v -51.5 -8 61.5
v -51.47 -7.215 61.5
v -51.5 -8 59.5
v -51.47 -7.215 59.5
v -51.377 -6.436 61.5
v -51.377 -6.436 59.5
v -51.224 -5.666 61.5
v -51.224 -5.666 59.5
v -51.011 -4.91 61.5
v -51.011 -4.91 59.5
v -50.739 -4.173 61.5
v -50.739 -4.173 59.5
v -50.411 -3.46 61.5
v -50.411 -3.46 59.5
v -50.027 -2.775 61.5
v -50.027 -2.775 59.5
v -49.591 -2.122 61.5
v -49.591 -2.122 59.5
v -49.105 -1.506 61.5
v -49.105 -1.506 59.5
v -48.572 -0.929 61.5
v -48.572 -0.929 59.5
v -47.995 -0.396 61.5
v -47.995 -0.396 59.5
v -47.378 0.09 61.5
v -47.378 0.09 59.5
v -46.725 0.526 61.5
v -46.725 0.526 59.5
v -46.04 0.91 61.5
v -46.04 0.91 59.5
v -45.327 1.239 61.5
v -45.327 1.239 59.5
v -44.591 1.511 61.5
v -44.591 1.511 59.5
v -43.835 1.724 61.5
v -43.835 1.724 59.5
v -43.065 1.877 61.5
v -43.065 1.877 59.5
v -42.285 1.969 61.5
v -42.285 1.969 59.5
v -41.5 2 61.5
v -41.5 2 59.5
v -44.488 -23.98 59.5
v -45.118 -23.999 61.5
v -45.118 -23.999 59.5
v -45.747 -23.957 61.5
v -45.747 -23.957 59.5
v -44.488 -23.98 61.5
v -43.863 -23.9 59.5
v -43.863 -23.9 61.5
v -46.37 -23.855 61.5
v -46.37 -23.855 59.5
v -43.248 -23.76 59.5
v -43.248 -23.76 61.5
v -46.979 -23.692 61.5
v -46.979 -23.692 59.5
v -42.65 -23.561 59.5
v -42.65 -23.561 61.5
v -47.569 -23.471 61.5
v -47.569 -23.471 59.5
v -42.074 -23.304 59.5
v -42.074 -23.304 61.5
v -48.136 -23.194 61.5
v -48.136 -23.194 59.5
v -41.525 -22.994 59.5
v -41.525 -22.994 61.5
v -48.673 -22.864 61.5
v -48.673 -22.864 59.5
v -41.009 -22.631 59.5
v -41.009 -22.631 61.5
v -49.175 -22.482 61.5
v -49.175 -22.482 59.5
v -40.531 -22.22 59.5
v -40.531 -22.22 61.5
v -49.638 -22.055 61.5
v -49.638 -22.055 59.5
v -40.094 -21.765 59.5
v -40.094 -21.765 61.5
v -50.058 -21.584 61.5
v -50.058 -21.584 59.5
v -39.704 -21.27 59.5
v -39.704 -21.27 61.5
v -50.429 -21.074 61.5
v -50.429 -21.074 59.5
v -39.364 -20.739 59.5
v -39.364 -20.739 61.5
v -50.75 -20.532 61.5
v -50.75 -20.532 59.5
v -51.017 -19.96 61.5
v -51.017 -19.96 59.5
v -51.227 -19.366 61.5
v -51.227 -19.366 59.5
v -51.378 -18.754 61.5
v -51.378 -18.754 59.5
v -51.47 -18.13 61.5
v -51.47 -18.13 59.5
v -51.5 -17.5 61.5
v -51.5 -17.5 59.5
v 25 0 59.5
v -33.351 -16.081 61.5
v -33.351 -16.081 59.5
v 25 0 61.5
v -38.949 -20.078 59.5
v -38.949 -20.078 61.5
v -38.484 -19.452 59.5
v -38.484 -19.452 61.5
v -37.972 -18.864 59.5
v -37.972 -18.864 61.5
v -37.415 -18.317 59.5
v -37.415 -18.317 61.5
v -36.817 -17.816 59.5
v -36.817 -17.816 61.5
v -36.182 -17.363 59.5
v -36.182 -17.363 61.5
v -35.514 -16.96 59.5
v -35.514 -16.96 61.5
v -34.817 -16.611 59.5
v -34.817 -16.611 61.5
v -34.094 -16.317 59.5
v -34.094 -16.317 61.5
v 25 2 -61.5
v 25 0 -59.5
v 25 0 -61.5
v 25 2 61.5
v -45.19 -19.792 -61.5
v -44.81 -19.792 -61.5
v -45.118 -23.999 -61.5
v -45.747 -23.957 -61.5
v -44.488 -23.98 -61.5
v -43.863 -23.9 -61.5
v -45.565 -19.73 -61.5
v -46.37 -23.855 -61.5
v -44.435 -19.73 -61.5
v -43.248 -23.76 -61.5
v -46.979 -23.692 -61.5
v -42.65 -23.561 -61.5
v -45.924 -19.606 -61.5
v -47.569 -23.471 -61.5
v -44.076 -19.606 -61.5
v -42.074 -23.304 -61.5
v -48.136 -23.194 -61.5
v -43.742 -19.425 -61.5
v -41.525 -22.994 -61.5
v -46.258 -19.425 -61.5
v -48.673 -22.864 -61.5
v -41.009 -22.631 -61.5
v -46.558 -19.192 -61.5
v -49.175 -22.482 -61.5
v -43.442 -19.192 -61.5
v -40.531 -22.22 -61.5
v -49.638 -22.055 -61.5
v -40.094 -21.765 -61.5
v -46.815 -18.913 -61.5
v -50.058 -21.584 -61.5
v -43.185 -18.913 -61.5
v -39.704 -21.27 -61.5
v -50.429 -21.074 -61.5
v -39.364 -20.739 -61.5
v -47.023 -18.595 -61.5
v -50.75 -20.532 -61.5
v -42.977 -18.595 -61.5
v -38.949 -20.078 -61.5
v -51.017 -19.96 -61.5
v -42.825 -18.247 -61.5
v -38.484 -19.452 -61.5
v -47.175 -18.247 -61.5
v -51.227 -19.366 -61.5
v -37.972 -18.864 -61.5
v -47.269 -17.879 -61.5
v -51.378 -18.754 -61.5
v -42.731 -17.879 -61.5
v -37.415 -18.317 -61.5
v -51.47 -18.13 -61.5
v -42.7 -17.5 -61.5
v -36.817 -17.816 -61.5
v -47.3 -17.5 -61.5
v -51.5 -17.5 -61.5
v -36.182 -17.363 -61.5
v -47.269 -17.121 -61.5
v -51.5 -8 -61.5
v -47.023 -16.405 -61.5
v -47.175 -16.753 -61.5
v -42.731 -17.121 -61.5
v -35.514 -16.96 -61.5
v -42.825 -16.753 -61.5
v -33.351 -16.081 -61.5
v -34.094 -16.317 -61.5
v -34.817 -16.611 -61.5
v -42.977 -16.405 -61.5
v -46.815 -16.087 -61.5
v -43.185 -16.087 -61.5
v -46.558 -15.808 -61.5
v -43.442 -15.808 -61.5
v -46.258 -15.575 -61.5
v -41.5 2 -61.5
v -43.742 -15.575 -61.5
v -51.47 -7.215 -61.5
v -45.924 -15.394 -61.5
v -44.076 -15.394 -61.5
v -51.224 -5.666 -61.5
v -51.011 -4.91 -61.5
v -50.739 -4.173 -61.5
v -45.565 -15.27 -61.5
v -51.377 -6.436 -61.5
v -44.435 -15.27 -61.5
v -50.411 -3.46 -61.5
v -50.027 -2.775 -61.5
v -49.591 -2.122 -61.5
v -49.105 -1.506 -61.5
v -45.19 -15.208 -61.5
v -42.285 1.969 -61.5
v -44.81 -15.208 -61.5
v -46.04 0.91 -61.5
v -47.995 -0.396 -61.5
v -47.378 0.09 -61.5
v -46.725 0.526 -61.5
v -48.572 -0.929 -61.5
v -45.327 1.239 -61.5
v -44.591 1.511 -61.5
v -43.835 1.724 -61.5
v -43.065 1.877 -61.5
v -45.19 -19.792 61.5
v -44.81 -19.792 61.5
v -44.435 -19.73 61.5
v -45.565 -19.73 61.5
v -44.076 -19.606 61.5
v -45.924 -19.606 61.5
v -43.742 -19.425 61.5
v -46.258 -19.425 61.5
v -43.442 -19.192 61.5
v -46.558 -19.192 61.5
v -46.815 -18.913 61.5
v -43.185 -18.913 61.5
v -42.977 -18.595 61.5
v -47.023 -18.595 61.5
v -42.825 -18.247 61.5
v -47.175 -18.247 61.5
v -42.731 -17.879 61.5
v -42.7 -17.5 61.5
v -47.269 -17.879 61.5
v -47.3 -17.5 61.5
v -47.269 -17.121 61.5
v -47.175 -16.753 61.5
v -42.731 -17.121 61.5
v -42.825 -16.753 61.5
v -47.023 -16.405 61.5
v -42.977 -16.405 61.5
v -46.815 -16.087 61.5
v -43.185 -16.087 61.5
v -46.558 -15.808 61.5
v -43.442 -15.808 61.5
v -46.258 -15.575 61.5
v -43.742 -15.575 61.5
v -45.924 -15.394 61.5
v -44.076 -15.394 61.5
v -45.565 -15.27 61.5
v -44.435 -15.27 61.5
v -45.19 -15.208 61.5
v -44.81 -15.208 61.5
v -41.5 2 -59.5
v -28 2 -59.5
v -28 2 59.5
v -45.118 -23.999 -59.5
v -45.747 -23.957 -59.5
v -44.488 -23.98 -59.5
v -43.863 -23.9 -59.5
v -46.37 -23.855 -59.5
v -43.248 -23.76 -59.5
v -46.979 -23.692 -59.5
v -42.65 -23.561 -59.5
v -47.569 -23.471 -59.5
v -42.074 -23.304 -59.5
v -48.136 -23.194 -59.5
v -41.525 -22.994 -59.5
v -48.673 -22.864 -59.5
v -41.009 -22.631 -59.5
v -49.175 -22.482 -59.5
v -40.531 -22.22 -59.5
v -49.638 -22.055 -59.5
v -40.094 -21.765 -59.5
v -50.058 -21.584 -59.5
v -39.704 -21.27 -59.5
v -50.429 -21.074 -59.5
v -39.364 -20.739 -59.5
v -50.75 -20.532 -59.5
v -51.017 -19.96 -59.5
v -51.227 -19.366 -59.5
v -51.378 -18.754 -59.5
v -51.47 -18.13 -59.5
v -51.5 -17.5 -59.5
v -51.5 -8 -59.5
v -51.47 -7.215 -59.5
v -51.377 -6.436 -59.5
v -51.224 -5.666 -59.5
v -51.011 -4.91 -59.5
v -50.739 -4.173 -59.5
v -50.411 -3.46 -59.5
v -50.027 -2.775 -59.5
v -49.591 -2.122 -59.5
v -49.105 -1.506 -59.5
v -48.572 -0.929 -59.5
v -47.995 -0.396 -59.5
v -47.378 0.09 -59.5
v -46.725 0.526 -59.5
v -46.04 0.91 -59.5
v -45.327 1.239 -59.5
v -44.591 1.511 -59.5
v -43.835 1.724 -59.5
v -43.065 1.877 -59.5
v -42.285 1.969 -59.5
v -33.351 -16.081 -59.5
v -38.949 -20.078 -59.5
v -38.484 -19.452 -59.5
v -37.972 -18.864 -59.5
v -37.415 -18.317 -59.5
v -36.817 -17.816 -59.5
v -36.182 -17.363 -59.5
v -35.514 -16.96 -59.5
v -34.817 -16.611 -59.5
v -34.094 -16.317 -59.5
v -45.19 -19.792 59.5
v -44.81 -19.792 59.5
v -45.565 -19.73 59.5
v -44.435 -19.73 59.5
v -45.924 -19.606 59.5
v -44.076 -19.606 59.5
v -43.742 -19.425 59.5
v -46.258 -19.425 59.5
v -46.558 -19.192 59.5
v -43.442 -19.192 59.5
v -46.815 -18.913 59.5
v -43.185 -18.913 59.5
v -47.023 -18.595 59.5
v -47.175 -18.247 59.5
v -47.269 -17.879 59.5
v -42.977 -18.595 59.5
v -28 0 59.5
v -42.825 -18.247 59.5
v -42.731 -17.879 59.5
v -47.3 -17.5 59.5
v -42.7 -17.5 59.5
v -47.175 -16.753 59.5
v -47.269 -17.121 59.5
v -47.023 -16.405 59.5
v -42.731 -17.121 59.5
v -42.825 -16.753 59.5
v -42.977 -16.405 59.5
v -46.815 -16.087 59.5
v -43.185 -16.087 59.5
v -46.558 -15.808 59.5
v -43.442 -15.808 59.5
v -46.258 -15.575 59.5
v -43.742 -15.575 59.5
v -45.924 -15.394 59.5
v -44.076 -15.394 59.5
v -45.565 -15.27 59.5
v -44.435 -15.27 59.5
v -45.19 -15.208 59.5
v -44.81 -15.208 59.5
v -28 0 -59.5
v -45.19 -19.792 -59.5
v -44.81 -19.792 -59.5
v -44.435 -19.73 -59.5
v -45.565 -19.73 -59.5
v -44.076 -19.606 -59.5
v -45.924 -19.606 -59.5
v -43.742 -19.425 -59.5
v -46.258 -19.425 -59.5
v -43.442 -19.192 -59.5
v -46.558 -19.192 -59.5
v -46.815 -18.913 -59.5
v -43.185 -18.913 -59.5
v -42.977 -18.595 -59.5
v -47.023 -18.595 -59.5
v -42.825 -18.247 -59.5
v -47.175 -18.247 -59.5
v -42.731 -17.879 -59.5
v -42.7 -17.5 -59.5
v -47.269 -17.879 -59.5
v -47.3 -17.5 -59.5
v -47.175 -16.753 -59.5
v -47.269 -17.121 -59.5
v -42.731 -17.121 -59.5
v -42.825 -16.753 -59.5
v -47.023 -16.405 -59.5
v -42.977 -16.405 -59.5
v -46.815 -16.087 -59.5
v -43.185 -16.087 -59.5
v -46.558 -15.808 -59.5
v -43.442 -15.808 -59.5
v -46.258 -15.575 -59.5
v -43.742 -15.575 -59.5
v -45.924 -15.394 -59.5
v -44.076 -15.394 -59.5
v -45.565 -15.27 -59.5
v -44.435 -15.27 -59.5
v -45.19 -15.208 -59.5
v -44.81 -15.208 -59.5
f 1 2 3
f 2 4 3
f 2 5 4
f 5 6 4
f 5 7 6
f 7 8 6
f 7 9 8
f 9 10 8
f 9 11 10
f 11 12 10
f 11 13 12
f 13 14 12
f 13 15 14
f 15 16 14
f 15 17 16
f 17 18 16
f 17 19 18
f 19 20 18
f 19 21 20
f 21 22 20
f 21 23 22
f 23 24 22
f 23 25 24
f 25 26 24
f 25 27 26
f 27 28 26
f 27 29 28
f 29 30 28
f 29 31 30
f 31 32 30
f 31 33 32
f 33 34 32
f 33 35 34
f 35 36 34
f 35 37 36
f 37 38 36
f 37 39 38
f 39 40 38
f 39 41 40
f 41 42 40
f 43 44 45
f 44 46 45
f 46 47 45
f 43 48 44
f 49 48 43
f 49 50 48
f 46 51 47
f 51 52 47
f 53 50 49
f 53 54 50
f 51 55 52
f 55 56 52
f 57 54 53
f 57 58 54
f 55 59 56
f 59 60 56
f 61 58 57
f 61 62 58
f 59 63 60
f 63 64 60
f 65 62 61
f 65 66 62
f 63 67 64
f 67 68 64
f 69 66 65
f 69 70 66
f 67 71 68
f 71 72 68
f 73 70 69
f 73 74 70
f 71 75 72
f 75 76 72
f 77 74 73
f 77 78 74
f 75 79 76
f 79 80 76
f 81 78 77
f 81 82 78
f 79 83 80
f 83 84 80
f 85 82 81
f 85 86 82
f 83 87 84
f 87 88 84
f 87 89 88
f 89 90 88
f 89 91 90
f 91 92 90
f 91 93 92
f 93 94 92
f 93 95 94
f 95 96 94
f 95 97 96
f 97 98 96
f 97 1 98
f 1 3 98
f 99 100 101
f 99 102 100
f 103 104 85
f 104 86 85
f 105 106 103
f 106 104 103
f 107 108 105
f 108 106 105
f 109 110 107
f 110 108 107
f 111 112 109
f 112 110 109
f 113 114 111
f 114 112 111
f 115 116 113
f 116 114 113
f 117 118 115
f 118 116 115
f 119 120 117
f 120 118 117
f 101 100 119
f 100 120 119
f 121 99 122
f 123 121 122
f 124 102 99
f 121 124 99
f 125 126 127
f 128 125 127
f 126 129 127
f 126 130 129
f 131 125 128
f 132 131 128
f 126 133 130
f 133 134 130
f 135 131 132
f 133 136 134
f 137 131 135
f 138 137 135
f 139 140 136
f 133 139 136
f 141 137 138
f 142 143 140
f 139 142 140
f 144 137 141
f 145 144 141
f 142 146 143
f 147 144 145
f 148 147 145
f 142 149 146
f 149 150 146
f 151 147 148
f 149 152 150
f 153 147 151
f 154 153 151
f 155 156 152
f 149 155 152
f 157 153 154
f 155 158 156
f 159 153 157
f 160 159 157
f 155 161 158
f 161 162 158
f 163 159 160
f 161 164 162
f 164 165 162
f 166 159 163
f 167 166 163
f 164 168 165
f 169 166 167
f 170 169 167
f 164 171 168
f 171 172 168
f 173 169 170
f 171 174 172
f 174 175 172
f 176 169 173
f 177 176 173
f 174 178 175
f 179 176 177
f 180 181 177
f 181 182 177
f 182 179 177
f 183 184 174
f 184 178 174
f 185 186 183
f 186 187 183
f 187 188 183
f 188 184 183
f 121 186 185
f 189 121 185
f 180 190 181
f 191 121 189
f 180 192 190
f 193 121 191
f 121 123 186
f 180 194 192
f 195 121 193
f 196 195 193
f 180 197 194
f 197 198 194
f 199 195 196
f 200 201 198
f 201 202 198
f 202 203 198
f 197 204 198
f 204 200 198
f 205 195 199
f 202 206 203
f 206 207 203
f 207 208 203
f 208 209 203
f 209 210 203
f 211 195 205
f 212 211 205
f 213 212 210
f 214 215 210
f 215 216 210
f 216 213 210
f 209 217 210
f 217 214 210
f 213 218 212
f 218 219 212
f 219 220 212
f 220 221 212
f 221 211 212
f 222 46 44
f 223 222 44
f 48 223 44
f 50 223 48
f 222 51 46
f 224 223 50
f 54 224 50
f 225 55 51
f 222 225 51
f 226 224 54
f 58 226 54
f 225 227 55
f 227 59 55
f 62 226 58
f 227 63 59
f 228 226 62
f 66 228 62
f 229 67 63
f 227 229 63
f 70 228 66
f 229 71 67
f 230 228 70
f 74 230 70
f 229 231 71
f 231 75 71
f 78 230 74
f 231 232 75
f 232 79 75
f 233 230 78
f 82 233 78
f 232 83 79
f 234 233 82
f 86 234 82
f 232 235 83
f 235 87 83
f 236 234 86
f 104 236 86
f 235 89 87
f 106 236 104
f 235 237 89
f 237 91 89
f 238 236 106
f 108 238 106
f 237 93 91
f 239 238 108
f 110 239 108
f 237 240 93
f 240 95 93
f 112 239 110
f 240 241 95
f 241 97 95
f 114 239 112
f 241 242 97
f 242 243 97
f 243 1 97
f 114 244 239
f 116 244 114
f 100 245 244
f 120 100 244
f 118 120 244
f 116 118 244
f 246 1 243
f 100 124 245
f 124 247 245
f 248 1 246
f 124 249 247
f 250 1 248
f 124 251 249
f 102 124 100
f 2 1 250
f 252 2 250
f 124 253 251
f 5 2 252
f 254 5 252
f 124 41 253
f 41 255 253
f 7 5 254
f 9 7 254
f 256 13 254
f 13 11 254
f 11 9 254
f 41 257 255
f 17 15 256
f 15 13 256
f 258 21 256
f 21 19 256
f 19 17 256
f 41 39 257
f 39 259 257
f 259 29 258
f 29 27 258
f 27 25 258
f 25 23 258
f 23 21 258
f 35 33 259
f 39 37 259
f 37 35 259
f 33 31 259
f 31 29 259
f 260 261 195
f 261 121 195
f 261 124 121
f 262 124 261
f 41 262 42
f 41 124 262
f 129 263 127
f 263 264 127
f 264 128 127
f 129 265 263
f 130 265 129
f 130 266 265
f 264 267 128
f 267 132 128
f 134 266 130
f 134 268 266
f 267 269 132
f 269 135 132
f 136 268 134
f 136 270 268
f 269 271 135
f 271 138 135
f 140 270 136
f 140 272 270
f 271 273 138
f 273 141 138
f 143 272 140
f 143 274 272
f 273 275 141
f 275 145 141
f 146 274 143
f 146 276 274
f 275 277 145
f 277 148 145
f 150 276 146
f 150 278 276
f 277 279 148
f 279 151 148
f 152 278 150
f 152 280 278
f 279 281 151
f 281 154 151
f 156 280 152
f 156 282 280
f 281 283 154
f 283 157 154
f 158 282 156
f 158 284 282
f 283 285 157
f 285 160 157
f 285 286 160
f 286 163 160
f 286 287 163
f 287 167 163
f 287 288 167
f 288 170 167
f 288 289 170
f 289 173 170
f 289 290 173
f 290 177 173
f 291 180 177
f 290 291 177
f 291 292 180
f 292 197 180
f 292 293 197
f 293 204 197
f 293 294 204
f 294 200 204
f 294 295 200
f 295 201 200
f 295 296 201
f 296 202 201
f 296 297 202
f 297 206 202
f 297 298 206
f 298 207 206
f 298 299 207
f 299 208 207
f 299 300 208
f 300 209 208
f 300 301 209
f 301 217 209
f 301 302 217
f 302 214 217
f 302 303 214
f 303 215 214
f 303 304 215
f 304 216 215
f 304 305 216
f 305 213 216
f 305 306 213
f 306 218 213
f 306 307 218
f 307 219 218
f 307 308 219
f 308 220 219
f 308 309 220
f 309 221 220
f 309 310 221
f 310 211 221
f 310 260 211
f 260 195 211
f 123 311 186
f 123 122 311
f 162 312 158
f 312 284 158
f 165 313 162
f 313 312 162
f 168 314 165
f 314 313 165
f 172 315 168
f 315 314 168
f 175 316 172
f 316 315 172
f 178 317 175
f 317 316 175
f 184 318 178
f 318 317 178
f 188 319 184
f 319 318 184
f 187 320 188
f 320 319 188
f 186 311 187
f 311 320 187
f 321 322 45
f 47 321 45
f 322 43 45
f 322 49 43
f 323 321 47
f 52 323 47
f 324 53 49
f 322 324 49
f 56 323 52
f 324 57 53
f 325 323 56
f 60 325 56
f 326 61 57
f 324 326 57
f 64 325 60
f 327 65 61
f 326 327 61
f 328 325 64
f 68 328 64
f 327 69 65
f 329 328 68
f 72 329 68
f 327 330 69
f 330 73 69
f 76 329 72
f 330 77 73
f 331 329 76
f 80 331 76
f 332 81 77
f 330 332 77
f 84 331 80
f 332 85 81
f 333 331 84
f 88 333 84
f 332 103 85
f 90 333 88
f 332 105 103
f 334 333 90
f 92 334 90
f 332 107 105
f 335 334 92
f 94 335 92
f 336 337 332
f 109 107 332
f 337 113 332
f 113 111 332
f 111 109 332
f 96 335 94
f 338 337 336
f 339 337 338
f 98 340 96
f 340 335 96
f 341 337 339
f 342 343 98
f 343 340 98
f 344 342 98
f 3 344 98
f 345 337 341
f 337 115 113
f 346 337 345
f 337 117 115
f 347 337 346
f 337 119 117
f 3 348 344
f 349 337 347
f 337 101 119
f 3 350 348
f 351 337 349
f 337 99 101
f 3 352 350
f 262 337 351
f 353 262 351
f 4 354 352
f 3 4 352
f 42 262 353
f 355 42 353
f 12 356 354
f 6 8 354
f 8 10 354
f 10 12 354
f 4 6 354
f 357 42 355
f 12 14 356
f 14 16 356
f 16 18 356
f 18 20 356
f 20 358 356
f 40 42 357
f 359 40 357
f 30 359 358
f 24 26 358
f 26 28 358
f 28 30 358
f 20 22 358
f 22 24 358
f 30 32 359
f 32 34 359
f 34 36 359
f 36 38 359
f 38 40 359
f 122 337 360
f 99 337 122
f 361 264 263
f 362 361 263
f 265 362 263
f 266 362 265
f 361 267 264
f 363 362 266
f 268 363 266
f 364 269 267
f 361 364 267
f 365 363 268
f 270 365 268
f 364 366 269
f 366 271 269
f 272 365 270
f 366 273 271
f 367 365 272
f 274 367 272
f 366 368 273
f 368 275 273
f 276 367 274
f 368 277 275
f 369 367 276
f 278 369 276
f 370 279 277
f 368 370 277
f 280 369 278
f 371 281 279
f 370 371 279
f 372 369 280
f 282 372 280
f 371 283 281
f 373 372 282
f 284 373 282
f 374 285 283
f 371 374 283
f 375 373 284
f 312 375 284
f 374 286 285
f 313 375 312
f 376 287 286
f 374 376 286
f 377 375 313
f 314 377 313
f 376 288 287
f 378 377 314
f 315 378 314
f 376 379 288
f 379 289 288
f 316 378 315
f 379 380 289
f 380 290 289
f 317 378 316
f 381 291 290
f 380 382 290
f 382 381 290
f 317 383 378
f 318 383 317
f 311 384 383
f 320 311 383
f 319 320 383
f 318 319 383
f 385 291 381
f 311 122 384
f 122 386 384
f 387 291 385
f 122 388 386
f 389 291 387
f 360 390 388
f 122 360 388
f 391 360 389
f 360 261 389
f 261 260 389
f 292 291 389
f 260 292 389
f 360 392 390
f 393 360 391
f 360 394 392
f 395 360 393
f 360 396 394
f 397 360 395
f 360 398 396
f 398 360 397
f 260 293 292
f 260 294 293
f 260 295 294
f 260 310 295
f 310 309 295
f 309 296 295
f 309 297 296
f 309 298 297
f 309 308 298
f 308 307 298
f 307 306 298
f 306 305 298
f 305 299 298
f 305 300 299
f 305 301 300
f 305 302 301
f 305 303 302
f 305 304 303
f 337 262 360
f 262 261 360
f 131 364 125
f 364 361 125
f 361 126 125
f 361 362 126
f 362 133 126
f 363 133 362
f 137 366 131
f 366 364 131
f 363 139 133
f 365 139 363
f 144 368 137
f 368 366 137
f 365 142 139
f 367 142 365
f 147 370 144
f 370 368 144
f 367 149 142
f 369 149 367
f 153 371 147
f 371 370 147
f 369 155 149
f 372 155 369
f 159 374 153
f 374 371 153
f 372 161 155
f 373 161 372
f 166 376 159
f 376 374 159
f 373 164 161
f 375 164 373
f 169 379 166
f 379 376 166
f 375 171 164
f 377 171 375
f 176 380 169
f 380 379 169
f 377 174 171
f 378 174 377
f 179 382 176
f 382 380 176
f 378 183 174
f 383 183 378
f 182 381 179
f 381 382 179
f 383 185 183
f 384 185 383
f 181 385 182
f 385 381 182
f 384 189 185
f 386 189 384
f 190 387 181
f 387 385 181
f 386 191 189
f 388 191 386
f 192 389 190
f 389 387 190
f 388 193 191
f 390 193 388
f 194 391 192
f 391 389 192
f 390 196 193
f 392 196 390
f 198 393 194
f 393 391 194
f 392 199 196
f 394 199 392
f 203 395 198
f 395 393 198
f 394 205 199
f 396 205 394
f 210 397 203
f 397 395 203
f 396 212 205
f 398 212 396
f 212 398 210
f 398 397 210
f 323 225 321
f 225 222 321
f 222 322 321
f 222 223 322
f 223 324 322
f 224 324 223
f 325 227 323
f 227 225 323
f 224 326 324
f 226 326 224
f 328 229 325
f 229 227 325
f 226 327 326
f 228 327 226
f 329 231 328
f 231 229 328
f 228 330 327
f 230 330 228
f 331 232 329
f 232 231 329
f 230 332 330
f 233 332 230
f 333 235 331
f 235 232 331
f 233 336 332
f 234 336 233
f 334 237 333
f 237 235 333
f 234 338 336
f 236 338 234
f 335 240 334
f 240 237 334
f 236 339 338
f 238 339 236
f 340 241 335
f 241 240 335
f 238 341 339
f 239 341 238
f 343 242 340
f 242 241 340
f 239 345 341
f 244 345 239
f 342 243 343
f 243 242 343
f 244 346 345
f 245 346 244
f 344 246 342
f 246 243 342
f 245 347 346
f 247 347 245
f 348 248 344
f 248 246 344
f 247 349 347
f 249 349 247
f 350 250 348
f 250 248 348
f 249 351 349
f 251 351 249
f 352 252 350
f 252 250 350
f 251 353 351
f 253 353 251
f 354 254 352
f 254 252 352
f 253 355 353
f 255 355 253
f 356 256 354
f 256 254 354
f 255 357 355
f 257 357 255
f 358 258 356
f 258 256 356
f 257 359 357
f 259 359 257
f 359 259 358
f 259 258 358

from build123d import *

# Parameters (mm, degrees)
SKETCH1_W               = 50
SKETCH1_H               = 123
BOSS_EXTRUDE1_DEPTH     = 2
BOSS_EXTRUDE2_DEPTH     = 123
CUT_EXTRUDE1_DEPTH      = 84.729178306
CUT_EXTRUDE1_DEPTH_BACK = 84.729178306
SKETCH3_W               = 119
SKETCH3_H               = 24.000498671
CUT_EXTRUDE2_DEPTH      = 85.324239069
CUT_EXTRUDE2_DEPTH_BACK = 85.324239069
SKETCH4_W               = 30.227049201
SKETCH4_H               = 119
CUT_EXTRUDE3_DEPTH      = 136.489207319
CUT_EXTRUDE3_DEPTH_BACK = 136.489207319
SKETCH5_R               = 2.3


with BuildPart() as part:
    # Sketch1 → Boss-Extrude1 (new body)
    with BuildSketch(Plane(origin=(0, 0, 0), x_dir=(1, 0, 0), z_dir=(0, 1, 0))):
        Rectangle(SKETCH1_W, SKETCH1_H)
    extrude(amount=BOSS_EXTRUDE1_DEPTH)

    # Sketch2 → Boss-Extrude2 (add)
    with BuildSketch(Plane.XY.offset(61.5)):
        with BuildLine():
            Line((-41.500498671, 2), (25, 2))
            Line((25, 2), (25, 0))
            Line((25, 0), (-33.350503344, -16.080973663))
            ThreePointArc((-33.350503344, -16.080973663), (-36.817369851, -17.815885758), (-39.363893872, -20.738949009))
            ThreePointArc((-39.363893872, -20.738949009), (-46.676153718, -23.780684014), (-51.500498671, -17.5))
            Line((-51.500498671, -17.5), (-51.500498671, -8))
            ThreePointArc((-51.500498671, -8), (-48.571566483, -0.928932188), (-41.500498671, 2))
        make_face()
    extrude(amount=-BOSS_EXTRUDE2_DEPTH)

    # Sketch3 → Cut-Extrude1 (cut, two sides: drawn at the far end of the back side and taken through both)
    with BuildSketch(Plane(origin=(0, 0, 0), x_dir=(0, 0, -1), z_dir=(1, 0, 0)).offset(-CUT_EXTRUDE1_DEPTH_BACK)):
        with Locations((0, -12.000249336)):
            Rectangle(SKETCH3_W, SKETCH3_H)
    extrude(amount=CUT_EXTRUDE1_DEPTH + CUT_EXTRUDE1_DEPTH_BACK, mode=Mode.SUBTRACT)

    # Sketch4 → Cut-Extrude2 (cut, two sides: drawn at the far end of the back side and taken through both)
    with BuildSketch(Plane(origin=(0, 2, 0), x_dir=(1, 0, 0), z_dir=(0, 1, 0)).offset(-CUT_EXTRUDE2_DEPTH_BACK)):
        with Locations((-43.1135246, 0)):
            Rectangle(SKETCH4_W, SKETCH4_H)
    extrude(amount=CUT_EXTRUDE2_DEPTH + CUT_EXTRUDE2_DEPTH_BACK, mode=Mode.SUBTRACT)

    # Sketch5 → Cut-Extrude3 (cut, two sides: drawn at the far end of the back side and taken through both)
    with BuildSketch(Plane.XY.offset(61.5).offset(-CUT_EXTRUDE3_DEPTH_BACK)):
        with Locations((-45, -17.5)):
            Circle(SKETCH5_R)
    extrude(amount=CUT_EXTRUDE3_DEPTH + CUT_EXTRUDE3_DEPTH_BACK, mode=Mode.SUBTRACT)


solid = part.part
